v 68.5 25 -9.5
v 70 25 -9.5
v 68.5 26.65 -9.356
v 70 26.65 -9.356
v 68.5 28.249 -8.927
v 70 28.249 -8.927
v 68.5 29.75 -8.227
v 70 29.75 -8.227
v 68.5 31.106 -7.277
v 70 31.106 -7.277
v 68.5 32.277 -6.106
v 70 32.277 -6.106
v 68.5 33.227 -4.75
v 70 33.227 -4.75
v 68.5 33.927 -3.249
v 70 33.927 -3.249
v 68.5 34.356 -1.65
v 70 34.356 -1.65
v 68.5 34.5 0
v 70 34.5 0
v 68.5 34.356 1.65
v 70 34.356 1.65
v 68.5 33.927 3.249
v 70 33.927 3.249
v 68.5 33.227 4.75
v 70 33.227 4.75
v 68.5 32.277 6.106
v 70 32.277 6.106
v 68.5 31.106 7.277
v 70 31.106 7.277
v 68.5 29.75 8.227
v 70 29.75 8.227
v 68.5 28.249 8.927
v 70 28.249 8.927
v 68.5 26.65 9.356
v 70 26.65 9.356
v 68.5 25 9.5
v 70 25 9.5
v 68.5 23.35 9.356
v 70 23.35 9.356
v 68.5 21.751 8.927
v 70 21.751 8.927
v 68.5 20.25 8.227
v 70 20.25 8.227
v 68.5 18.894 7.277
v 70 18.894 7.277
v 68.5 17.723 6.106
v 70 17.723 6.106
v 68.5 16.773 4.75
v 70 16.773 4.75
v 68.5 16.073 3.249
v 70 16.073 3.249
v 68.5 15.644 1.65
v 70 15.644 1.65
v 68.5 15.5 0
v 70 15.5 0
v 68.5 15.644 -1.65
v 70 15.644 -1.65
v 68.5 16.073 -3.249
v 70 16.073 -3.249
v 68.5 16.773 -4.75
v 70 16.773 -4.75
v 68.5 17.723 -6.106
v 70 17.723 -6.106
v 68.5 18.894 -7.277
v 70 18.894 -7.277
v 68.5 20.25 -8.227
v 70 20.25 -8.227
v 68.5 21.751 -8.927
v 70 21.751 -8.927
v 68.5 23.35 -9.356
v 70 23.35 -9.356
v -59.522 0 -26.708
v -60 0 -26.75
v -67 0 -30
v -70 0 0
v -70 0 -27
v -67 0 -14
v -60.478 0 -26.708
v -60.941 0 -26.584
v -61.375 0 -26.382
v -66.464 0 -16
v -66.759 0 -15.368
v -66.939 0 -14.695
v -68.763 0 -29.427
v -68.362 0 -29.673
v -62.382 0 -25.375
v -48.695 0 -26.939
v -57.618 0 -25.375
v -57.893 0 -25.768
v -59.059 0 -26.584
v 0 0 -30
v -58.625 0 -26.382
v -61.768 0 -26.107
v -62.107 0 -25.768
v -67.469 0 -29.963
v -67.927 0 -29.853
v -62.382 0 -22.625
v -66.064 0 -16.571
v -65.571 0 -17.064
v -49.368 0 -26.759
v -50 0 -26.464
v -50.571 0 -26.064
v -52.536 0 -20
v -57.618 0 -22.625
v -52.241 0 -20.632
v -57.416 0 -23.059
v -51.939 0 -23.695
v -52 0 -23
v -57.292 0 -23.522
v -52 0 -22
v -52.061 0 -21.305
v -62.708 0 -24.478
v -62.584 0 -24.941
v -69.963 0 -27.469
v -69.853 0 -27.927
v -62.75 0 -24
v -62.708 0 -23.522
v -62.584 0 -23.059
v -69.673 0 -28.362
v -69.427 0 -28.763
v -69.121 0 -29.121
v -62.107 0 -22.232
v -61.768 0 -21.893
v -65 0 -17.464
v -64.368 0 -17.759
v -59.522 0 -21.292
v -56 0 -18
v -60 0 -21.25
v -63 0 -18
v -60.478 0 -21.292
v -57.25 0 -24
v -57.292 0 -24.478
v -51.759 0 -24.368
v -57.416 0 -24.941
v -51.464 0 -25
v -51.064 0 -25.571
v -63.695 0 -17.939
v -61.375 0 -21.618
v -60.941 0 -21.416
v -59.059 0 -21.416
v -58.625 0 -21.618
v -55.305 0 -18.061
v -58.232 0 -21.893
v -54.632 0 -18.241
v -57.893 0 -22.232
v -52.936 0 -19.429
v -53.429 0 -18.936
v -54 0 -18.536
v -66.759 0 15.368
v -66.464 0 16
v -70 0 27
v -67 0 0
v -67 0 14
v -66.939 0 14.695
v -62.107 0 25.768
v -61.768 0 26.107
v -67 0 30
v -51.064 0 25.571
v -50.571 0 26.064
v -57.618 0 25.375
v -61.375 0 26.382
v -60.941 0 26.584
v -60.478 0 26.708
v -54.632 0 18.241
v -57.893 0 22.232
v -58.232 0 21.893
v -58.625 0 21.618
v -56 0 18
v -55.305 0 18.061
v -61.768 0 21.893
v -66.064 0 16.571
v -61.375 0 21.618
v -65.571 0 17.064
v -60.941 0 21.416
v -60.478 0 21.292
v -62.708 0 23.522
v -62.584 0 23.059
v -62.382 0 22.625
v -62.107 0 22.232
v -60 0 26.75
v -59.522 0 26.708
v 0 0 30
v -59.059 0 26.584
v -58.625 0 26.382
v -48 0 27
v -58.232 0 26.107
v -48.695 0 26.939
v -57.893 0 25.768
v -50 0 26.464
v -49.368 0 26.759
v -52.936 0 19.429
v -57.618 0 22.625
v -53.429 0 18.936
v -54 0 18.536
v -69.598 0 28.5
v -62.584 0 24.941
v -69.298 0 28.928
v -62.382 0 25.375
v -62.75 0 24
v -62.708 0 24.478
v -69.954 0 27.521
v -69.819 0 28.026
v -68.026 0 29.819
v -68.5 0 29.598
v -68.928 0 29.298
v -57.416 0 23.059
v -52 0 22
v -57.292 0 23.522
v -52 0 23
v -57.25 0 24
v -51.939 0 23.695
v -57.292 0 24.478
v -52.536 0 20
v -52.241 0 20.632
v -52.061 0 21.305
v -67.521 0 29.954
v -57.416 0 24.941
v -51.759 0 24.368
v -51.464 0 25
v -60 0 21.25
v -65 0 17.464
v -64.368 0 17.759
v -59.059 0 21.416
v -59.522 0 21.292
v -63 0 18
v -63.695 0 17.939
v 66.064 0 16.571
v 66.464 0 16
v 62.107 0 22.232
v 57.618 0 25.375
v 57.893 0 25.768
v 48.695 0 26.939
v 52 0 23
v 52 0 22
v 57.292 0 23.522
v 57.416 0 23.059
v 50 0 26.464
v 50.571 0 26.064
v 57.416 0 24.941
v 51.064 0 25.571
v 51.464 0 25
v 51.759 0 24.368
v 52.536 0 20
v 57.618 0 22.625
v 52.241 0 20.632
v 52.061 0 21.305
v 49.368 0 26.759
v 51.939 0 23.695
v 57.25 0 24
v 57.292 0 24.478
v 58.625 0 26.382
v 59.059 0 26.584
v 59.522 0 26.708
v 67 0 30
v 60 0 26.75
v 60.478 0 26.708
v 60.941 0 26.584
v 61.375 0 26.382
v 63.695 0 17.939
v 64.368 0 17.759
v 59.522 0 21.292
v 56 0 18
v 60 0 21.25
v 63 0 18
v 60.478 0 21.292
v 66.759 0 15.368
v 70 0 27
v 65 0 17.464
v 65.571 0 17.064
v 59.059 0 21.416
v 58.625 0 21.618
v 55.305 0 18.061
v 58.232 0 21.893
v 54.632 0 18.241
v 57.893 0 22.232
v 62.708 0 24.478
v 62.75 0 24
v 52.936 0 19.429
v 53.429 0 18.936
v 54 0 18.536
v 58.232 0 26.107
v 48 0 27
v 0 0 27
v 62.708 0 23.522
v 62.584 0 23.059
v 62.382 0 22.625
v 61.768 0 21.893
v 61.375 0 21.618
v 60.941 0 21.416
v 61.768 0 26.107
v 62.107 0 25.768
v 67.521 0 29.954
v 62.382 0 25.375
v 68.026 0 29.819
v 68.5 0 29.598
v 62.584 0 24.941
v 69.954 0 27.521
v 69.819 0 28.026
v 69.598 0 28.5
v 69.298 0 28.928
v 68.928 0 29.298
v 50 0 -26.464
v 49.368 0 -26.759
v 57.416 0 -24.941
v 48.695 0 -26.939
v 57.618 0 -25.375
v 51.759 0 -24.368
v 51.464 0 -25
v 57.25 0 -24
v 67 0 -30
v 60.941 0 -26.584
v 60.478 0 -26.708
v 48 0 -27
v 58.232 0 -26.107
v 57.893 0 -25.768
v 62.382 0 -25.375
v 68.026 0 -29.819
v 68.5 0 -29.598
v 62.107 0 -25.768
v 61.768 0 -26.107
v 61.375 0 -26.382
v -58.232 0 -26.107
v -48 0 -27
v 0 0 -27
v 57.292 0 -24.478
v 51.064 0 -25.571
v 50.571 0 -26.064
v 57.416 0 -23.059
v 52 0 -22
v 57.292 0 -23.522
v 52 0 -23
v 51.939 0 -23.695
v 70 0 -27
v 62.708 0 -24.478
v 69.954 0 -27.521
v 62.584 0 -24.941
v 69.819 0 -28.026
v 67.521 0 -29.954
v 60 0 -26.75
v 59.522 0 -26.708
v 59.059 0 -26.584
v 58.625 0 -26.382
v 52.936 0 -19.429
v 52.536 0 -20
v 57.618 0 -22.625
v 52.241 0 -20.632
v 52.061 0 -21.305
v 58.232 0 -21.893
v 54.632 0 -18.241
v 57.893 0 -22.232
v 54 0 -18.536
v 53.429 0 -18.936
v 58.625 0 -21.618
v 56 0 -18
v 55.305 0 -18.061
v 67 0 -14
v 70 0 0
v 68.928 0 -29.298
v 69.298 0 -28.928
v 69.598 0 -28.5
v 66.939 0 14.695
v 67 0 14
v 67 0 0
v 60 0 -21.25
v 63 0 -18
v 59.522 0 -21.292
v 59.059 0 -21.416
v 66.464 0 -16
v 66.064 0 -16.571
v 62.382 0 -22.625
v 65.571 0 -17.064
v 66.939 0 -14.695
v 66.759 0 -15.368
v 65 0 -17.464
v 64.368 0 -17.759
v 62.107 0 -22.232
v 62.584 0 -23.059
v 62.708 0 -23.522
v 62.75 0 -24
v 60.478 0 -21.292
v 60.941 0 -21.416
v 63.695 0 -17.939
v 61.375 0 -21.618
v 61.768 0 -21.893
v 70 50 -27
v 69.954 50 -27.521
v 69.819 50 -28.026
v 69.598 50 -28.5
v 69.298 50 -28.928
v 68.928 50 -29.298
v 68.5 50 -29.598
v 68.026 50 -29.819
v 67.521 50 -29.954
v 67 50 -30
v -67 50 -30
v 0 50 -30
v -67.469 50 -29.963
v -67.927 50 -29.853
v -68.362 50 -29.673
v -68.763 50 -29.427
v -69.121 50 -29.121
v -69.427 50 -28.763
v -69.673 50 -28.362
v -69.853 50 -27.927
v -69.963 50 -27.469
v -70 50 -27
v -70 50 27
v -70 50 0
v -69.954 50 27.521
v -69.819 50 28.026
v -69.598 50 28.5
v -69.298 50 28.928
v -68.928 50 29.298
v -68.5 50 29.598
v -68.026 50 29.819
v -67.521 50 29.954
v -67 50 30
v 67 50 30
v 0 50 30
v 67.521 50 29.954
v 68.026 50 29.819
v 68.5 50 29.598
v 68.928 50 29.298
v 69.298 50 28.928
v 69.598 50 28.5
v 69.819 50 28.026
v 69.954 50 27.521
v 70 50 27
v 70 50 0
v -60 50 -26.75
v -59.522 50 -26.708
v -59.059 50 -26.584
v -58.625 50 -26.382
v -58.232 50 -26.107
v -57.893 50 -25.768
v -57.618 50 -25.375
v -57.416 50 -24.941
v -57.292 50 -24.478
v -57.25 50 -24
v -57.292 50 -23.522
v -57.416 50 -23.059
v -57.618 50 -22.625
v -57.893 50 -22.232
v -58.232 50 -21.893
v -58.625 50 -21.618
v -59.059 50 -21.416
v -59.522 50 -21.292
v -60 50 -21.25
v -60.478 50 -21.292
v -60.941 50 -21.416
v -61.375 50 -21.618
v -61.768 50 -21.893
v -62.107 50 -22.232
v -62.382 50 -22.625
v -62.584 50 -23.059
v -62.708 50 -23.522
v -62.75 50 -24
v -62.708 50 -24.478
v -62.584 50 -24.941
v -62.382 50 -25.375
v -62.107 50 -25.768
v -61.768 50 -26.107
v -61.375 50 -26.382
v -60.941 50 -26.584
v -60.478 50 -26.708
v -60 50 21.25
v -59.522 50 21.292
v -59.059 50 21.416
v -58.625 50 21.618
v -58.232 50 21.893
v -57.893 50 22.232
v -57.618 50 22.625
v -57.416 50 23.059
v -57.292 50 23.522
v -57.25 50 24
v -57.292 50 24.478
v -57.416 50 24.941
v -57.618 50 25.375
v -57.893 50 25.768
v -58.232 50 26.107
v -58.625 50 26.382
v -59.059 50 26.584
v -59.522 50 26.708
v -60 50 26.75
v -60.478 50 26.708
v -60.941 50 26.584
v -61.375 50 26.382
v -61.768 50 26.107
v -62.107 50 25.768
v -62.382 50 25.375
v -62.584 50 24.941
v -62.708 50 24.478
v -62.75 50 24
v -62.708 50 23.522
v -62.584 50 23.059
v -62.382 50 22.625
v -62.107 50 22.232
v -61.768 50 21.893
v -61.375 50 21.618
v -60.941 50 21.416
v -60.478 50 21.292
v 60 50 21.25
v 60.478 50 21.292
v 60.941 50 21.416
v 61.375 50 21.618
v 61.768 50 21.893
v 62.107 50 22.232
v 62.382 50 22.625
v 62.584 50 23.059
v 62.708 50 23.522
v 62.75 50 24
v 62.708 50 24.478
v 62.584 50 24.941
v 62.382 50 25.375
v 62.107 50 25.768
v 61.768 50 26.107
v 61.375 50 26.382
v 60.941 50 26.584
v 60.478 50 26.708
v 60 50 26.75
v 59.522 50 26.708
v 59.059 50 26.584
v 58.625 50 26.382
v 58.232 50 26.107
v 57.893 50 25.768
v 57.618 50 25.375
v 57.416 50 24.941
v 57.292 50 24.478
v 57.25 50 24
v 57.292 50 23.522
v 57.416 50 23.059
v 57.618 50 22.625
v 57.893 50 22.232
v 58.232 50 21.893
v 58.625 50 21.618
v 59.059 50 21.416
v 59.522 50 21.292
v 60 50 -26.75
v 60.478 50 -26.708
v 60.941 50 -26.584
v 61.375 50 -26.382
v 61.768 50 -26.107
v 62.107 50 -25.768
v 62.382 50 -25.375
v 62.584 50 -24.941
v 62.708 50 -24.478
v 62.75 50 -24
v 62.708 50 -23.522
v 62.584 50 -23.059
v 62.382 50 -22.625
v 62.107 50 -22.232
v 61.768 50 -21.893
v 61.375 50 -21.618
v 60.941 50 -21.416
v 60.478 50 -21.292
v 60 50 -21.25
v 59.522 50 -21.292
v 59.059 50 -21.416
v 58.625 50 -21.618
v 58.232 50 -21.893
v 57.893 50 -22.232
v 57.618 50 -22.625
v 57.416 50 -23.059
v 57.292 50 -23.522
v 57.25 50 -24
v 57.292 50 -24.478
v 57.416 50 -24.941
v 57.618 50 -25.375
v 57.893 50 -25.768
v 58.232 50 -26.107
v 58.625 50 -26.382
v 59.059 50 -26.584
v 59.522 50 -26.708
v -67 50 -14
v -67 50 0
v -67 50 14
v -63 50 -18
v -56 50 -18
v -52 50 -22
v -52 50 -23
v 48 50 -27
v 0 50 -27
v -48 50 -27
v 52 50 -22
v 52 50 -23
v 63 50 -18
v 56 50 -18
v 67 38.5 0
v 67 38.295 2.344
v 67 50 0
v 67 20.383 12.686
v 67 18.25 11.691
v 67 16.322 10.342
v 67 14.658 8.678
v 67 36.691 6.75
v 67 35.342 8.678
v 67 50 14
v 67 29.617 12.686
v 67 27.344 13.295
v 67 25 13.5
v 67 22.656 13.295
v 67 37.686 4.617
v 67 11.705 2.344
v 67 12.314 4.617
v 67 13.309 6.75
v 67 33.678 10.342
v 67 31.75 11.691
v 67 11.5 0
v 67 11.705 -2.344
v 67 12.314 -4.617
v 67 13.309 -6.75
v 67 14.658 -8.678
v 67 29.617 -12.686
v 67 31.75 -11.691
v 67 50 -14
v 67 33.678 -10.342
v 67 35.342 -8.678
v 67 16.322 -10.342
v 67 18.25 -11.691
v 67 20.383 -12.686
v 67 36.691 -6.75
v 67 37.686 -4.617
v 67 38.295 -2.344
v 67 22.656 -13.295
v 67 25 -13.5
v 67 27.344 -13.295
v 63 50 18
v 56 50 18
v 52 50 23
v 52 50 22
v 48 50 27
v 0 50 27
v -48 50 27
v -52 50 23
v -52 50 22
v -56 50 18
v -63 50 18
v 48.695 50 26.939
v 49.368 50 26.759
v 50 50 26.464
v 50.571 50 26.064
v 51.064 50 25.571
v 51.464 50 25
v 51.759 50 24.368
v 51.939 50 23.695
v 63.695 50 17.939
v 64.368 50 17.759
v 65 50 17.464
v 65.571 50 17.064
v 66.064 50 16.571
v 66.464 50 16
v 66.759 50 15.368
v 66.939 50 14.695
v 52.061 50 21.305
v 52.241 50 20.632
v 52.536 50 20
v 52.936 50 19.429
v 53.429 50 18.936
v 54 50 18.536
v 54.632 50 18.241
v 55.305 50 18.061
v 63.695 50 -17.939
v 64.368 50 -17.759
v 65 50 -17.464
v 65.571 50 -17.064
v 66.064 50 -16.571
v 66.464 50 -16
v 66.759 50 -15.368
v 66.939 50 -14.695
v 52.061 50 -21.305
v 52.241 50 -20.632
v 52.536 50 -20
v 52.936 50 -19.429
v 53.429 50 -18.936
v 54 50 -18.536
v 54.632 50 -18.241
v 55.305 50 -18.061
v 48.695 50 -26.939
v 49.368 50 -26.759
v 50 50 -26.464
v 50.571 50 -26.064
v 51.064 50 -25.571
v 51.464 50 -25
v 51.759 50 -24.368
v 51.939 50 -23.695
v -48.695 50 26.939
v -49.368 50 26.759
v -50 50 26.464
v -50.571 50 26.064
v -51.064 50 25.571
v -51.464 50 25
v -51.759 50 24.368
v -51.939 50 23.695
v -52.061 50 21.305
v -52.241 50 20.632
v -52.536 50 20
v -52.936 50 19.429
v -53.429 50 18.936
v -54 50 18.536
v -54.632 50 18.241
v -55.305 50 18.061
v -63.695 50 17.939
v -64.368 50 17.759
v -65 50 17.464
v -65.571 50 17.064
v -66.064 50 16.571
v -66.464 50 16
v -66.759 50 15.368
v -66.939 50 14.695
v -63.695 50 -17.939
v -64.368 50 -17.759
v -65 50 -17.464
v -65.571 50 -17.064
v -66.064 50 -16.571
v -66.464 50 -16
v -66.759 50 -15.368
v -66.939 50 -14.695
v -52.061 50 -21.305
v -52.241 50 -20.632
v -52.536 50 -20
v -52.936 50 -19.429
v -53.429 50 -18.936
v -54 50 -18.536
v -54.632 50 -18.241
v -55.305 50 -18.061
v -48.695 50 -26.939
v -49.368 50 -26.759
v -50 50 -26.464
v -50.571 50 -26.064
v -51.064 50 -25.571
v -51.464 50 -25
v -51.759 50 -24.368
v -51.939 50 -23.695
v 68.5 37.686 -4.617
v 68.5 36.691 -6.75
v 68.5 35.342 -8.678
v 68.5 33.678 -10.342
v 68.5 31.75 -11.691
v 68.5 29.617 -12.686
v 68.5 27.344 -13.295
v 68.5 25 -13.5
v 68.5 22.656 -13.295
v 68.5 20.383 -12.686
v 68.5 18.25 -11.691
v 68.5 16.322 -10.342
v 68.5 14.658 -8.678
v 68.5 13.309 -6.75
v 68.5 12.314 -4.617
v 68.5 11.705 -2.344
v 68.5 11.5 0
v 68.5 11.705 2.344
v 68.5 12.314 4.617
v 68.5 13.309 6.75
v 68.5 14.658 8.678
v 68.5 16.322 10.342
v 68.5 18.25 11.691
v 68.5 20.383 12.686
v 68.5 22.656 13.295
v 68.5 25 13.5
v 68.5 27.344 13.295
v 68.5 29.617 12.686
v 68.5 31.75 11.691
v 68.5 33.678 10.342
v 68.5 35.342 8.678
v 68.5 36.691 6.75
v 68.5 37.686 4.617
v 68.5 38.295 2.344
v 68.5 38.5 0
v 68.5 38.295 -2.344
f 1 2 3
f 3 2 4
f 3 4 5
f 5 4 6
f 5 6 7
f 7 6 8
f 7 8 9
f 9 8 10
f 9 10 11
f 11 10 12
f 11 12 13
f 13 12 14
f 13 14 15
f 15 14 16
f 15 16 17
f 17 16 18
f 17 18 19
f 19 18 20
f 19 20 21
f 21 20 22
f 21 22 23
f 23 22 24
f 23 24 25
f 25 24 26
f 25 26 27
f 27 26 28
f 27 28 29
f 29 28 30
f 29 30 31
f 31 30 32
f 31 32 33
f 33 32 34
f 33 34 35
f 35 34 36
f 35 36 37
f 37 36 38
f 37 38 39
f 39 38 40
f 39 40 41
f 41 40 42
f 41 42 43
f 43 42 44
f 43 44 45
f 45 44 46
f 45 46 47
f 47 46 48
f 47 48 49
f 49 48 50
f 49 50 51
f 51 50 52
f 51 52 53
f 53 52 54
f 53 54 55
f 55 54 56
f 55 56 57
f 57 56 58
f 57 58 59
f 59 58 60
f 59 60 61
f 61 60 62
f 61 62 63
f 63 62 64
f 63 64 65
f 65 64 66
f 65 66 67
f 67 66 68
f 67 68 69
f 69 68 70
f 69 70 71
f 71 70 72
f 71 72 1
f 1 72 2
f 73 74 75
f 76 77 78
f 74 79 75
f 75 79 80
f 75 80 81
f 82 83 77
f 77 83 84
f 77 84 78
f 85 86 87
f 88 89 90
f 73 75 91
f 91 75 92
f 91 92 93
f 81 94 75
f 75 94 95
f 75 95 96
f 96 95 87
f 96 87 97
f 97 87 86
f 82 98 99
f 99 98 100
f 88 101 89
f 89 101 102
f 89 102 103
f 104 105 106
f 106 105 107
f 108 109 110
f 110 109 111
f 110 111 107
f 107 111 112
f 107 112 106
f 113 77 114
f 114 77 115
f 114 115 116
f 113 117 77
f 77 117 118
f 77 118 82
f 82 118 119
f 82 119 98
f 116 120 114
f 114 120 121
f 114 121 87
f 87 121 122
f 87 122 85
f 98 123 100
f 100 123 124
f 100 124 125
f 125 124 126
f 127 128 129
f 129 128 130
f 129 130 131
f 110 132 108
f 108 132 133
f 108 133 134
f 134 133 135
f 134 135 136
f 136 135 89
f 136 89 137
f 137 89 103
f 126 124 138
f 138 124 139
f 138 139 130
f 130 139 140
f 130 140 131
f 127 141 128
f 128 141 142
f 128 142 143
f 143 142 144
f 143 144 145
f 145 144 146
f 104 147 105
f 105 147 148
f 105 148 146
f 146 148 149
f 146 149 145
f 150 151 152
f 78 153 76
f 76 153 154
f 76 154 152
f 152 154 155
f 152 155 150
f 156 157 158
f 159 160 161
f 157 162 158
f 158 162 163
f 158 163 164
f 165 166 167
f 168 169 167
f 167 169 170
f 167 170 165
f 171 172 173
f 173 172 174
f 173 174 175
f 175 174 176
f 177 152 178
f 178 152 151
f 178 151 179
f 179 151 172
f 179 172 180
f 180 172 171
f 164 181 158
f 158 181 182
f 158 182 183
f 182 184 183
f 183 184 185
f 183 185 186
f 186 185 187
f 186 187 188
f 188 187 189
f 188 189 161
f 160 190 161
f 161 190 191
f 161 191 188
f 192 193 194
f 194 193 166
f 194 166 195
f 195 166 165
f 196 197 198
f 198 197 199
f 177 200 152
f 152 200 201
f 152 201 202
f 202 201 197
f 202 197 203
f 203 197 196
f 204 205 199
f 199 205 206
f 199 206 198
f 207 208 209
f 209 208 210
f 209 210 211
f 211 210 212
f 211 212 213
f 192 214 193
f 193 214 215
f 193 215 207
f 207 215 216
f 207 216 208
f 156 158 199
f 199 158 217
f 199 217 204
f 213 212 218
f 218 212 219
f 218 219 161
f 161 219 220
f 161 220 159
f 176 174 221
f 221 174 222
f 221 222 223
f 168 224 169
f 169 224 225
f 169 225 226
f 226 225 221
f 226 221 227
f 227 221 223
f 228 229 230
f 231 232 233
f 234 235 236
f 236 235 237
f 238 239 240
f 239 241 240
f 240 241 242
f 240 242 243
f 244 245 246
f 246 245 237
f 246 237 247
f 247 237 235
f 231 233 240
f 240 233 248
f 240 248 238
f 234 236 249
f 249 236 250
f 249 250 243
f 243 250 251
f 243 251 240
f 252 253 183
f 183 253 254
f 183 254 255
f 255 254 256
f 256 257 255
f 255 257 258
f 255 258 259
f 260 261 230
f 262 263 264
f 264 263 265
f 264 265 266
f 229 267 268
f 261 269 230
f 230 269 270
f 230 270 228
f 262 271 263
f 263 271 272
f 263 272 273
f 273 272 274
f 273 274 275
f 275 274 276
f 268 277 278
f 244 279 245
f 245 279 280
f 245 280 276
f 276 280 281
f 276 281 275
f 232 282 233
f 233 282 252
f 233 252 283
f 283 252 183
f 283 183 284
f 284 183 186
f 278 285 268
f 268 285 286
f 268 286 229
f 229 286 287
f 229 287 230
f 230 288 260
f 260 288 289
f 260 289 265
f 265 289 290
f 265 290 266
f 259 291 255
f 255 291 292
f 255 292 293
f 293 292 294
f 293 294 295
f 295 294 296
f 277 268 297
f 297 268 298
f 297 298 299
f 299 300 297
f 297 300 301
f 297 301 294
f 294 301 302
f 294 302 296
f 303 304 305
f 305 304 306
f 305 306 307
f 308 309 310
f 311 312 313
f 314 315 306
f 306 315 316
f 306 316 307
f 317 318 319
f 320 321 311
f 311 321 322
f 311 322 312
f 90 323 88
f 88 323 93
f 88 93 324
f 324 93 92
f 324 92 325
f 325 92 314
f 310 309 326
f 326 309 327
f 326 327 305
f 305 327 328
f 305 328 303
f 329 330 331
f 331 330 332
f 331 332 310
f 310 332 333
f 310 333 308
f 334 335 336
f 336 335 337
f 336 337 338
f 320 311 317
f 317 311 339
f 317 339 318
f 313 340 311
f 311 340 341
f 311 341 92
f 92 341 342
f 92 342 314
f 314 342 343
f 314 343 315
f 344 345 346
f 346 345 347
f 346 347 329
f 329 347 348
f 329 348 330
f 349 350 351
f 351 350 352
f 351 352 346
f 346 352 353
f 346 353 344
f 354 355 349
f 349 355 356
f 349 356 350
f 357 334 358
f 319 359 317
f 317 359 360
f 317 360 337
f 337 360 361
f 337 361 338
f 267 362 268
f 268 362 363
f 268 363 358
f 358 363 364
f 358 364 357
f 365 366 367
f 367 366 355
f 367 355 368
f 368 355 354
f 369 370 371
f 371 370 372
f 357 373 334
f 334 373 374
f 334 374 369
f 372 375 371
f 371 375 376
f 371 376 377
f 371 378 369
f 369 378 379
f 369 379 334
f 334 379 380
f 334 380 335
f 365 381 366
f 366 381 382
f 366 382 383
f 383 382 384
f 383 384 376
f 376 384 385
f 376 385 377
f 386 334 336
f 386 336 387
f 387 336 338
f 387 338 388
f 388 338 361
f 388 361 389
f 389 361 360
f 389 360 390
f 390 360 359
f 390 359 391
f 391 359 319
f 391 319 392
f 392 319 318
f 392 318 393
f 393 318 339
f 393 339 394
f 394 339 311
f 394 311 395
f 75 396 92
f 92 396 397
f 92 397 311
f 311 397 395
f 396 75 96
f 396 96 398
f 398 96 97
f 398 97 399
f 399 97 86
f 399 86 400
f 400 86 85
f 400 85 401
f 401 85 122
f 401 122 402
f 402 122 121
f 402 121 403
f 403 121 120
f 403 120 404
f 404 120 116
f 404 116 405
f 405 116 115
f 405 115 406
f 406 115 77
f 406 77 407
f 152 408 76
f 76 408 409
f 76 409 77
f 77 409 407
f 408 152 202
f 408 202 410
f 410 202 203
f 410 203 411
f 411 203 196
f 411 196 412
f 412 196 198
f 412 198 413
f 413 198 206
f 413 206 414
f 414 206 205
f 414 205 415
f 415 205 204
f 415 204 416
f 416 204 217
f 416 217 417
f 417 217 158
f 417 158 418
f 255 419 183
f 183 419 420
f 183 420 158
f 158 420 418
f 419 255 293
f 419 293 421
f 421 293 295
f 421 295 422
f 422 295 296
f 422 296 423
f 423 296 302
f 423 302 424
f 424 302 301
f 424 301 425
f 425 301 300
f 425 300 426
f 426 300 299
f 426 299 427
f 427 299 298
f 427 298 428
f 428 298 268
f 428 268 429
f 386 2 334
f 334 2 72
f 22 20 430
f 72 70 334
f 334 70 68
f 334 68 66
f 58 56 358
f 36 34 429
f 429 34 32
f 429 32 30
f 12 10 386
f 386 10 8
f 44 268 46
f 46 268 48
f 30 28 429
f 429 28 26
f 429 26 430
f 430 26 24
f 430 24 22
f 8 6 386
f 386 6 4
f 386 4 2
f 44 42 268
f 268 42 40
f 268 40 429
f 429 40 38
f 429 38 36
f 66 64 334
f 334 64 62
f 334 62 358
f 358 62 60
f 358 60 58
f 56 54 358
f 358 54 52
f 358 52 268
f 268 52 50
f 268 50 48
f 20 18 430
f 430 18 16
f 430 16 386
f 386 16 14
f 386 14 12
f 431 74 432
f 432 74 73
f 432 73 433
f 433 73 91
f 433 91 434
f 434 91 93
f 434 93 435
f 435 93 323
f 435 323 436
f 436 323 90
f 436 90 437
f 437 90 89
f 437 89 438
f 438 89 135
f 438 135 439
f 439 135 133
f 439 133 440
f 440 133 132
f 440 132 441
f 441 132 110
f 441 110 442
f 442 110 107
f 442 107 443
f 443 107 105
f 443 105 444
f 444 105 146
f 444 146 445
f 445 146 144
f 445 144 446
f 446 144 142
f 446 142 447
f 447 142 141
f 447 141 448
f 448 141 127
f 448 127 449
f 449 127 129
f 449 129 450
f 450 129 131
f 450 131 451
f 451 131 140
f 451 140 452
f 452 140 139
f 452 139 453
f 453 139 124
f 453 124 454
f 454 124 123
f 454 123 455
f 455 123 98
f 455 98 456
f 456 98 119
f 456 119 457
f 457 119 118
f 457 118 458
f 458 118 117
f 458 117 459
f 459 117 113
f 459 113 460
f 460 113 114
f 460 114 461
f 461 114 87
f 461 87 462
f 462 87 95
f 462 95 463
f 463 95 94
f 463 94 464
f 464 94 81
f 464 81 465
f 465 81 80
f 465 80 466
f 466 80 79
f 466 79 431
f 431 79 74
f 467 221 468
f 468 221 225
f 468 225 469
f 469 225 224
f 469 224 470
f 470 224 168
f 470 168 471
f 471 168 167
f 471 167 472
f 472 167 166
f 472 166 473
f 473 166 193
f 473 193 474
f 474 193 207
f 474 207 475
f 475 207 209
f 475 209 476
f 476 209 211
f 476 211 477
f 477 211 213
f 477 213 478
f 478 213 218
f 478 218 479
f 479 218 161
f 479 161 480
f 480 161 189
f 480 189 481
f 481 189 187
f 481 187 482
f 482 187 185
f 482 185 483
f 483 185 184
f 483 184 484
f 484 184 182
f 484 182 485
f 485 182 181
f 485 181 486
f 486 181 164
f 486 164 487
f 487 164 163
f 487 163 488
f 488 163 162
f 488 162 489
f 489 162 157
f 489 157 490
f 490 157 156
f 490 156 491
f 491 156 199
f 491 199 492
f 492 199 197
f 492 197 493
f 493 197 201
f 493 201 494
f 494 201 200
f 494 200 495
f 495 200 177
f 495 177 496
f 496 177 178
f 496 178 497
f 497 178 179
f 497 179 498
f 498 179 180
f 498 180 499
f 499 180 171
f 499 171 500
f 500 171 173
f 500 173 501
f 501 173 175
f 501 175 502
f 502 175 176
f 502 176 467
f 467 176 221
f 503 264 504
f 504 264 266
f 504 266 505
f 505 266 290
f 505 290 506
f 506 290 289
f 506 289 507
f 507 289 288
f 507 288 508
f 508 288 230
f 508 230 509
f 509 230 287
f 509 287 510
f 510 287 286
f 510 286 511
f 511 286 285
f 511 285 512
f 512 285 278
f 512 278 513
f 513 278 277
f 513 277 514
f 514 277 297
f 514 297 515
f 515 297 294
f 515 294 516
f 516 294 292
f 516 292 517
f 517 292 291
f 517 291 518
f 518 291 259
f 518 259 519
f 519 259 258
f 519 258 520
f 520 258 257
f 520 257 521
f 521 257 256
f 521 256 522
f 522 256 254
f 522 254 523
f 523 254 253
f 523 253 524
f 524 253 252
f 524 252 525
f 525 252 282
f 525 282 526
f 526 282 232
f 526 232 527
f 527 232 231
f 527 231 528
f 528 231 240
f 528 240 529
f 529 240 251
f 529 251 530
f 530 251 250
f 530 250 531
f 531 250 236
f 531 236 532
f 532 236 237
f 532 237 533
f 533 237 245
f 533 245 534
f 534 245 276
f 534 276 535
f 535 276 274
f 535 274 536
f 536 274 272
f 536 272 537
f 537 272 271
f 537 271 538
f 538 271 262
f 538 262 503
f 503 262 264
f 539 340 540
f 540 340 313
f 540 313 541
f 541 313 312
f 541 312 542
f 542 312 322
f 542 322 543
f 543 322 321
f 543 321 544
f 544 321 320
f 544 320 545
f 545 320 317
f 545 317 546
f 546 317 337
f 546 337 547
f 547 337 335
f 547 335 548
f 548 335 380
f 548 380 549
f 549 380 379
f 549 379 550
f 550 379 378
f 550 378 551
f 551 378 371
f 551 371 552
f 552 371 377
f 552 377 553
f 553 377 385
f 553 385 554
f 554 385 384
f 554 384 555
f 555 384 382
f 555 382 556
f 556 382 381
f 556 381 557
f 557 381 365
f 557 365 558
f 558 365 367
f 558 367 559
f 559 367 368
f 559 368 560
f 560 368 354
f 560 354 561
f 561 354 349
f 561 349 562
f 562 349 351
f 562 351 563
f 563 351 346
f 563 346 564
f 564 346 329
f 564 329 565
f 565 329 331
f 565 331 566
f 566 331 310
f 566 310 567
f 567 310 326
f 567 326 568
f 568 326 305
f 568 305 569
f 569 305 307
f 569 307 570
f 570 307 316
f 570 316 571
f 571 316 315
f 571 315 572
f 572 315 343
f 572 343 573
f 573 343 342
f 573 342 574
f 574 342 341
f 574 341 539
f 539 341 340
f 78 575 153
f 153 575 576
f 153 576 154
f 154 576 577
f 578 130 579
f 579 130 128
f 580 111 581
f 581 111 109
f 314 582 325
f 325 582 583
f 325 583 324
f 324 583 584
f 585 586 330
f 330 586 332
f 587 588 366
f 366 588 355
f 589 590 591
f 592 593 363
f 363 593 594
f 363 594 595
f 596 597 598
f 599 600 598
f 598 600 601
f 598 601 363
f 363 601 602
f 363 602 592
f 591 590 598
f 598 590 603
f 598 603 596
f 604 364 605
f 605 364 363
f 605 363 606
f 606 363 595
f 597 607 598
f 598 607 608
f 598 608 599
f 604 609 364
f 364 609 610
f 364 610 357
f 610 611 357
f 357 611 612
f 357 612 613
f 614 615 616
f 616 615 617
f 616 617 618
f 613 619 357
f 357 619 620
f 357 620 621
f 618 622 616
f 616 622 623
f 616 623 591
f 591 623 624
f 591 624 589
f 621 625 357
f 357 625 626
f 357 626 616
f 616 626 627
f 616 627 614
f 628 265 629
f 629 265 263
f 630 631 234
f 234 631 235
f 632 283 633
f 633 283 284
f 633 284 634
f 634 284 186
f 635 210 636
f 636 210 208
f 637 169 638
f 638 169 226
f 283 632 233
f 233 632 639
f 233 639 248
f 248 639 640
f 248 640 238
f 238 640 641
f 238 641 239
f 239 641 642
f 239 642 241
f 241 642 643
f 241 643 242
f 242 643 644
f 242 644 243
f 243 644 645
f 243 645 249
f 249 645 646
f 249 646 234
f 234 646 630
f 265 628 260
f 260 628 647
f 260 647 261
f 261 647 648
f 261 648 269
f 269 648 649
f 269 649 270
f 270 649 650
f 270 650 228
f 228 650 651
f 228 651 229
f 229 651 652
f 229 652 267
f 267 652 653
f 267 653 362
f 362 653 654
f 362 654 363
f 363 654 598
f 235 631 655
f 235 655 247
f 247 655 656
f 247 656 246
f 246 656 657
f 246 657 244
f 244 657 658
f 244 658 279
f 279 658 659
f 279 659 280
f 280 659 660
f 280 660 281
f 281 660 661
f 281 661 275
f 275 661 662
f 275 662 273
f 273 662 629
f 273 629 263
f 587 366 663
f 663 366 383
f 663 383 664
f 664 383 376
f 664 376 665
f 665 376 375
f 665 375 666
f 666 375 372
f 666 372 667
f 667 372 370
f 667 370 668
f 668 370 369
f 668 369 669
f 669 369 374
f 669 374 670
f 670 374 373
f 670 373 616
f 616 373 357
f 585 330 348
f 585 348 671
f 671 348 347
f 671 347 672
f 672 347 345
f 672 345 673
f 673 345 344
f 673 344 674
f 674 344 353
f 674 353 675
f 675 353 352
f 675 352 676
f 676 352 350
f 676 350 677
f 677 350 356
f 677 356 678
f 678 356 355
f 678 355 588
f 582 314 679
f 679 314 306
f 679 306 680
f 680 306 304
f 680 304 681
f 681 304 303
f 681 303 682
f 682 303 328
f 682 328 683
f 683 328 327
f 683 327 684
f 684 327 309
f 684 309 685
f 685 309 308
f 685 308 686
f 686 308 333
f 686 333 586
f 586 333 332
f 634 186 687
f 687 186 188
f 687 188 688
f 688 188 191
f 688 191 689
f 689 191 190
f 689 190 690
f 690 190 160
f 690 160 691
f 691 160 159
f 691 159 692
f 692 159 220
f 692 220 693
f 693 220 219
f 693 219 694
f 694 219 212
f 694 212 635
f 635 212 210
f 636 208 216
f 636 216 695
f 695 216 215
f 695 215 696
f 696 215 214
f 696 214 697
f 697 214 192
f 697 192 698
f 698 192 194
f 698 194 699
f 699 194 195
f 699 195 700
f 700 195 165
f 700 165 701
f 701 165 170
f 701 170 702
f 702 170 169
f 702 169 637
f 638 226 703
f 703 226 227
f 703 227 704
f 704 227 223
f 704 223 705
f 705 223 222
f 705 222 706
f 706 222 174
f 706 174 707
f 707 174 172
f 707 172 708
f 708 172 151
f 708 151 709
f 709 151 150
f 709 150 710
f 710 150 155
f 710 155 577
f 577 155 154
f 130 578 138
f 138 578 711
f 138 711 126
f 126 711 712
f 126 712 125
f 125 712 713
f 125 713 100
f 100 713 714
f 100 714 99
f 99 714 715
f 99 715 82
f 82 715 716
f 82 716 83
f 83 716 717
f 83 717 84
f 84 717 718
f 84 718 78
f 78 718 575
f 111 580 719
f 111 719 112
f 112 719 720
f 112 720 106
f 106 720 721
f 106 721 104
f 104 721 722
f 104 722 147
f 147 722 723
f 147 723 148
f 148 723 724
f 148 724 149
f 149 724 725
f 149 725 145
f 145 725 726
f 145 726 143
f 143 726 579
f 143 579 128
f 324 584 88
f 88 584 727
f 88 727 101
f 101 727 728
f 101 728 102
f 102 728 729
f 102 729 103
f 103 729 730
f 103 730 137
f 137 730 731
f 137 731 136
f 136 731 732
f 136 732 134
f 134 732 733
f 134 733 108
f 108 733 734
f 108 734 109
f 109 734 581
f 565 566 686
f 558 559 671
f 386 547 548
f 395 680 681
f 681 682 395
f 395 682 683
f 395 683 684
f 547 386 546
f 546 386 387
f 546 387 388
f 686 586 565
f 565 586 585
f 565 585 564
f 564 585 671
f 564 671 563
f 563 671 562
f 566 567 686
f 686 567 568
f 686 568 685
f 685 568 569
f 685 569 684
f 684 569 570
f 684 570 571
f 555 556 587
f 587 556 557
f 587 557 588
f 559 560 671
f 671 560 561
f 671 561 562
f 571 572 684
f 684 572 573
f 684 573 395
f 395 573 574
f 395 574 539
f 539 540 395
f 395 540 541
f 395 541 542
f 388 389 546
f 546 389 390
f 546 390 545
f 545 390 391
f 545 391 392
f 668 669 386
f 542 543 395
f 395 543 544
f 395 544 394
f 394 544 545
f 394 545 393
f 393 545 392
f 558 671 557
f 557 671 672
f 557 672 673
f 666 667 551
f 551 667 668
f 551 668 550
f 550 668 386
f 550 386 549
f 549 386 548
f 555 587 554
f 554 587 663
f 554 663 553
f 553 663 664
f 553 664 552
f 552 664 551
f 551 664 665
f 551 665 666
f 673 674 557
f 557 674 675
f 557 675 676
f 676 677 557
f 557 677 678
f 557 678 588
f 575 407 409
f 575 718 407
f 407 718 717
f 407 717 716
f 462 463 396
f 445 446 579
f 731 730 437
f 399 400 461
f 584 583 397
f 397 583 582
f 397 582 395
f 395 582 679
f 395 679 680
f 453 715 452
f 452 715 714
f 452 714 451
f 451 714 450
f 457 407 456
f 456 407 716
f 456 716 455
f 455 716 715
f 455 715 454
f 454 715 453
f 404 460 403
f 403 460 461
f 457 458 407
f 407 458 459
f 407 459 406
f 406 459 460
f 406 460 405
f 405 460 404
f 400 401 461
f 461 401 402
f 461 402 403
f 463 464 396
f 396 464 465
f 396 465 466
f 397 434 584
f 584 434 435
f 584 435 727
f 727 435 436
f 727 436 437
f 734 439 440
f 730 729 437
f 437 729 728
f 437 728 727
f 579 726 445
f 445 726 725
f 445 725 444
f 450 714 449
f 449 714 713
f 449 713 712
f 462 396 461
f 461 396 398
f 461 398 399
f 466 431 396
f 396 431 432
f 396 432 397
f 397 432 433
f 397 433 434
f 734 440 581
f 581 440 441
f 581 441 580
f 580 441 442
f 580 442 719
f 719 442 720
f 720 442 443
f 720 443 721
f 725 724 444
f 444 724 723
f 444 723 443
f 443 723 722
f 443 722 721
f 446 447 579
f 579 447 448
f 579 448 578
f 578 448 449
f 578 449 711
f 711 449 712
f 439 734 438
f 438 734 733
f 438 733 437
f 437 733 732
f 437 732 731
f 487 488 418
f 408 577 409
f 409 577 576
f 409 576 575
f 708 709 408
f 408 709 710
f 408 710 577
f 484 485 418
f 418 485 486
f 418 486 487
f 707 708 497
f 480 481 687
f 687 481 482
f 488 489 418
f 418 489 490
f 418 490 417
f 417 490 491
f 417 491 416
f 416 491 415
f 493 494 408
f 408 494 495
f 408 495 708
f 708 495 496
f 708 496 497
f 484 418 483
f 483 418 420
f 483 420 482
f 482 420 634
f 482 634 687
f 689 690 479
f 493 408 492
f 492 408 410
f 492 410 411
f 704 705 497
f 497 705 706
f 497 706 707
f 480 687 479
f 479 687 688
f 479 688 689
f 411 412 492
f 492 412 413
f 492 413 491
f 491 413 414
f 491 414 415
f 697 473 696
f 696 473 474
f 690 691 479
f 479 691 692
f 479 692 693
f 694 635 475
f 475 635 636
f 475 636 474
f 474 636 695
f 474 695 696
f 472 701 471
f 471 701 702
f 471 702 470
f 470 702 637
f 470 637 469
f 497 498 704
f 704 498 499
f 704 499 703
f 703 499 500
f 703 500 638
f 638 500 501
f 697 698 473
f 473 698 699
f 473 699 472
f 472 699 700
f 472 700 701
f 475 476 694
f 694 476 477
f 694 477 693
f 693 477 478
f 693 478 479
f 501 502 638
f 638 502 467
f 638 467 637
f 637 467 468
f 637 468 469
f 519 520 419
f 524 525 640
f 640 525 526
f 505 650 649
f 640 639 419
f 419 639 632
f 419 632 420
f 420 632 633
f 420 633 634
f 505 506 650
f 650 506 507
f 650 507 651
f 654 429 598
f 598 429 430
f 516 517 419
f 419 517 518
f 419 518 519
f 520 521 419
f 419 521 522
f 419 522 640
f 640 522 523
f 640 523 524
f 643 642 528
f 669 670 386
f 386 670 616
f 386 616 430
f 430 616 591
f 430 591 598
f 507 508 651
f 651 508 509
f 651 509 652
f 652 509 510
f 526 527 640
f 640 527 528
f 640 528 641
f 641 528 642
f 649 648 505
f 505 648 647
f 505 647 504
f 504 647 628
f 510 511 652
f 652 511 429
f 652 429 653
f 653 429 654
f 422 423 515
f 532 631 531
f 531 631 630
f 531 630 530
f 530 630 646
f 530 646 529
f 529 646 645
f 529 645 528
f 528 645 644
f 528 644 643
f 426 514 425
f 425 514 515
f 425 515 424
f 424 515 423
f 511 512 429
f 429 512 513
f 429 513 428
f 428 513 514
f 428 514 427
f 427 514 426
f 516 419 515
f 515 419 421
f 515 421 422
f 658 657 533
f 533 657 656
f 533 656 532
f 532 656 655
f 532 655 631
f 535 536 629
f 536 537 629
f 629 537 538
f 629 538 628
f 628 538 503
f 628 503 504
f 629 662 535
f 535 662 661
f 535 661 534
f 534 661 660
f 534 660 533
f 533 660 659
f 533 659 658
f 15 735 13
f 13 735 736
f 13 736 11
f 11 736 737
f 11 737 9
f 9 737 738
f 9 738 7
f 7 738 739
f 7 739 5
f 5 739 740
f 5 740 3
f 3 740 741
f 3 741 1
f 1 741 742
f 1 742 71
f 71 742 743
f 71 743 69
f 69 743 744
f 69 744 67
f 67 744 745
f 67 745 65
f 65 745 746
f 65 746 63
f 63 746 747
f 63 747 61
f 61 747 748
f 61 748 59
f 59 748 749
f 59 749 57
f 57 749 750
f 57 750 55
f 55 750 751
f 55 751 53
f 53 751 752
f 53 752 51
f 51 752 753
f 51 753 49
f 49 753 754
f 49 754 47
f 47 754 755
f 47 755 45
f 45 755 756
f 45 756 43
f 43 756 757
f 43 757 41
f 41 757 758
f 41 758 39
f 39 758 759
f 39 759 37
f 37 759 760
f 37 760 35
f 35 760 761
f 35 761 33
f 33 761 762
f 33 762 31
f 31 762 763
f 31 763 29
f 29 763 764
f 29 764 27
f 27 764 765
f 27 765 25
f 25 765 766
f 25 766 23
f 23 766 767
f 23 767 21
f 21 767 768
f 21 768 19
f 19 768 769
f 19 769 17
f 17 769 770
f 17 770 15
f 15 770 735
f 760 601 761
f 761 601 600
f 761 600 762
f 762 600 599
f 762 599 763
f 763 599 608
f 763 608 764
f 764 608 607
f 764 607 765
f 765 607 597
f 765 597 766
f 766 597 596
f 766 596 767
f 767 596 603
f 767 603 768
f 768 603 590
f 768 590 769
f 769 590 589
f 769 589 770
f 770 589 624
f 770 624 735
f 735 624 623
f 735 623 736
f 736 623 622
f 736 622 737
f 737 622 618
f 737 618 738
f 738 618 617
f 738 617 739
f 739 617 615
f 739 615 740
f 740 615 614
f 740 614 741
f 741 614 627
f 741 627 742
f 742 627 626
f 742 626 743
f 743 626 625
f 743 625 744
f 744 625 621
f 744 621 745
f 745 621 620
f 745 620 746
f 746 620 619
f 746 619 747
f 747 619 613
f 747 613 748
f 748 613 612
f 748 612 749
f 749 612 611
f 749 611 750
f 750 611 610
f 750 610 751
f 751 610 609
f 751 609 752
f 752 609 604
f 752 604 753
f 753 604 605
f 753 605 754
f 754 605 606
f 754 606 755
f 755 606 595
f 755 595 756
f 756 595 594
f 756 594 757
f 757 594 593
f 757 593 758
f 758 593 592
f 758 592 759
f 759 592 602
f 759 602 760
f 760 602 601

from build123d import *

# Parameters (mm, degrees)
SKETCH1_R           = 2.75
SKETCH1_W           = 130
SKETCH1_H           = 38
BOSS_EXTRUDE1_DEPTH = 10
SKETCH1_2_W         = 130
SKETCH1_2_H         = 38
BOSS_EXTRUDE2_DEPTH = 10
SKETCH14_W          = 15
SKETCH14_H          = 36
SKETCH14_W_2        = 104
SKETCH14_H_2        = 9
CUT_EXTRUDE2_DEPTH  = 77.811457479
FILLET2_R           = 4
SKETCH15_R          = 2.75
BOSS_EXTRUDE3_DEPTH = 40
CUT_EXTRUDE3_REACH  = 153.658
SKETCH16_R          = 9.5
SKETCH17_R          = 13.5
CUT_EXTRUDE4_DEPTH  = 1.5


with BuildPart() as part:
    # Sketch1 → Boss-Extrude1 (new body)
    with BuildSketch(Plane(origin=(0, 0, 0), x_dir=(1, 0, 0), z_dir=(0, 1, 0))):
        with BuildLine():
            Line((67, 30), (-67, 30))
            ThreePointArc((-67, 30), (-69.121320344, 29.121320344), (-70, 27))
            Line((-70, 27), (-70, -27))
            ThreePointArc((-70, -27), (-69.121320344, -29.121320344), (-67, -30))
            Line((-67, -30), (67, -30))
            ThreePointArc((67, -30), (69.121320344, -29.121320344), (70, -27))
            Line((70, -27), (70, 27))
            ThreePointArc((70, 27), (69.121320344, 29.121320344), (67, 30))
        make_face()
        with Locations(Location((-60, 24, 0), (0, 0, 270))):
            Circle(SKETCH1_R, mode=Mode.SUBTRACT)
        with Locations(Location((-60, -24, 0), (0, 0, 270))):
            Circle(SKETCH1_R, mode=Mode.SUBTRACT)
        with Locations(Location((60, -24, 0), (0, 0, 270))):
            Circle(SKETCH1_R, mode=Mode.SUBTRACT)
        with Locations(Location((60, 24, 0), (0, 0, 270))):
            Circle(SKETCH1_R, mode=Mode.SUBTRACT)
        Rectangle(SKETCH1_W, SKETCH1_H, mode=Mode.SUBTRACT)
    extrude(amount=BOSS_EXTRUDE1_DEPTH)

    # Sketch1<2> → Boss-Extrude2 (add)
    with BuildSketch(Plane(origin=(0, 0, 0), x_dir=(1, 0, 0), z_dir=(0, 1, 0))):
        Rectangle(SKETCH1_2_W, SKETCH1_2_H)
    extrude(amount=BOSS_EXTRUDE2_DEPTH)

    # Sketch14 → Cut-Extrude2 (cut, through all)
    with BuildSketch(Plane(origin=(0, 10, 0), x_dir=(1, 0, 0), z_dir=(0, 1, 0))):
        with Locations((-59.5, 0)):
            Rectangle(SKETCH14_W, SKETCH14_H)
        Rectangle(SKETCH14_W_2, SKETCH14_H)
        with Locations((0, 22.5)):
            Rectangle(SKETCH14_W_2, SKETCH14_H_2)
        with Locations((59.5, 0)):
            Rectangle(SKETCH14_W, SKETCH14_H)
        with Locations((0, -22.5)):
            Rectangle(SKETCH14_W_2, SKETCH14_H_2)
    extrude(amount=-CUT_EXTRUDE2_DEPTH, mode=Mode.SUBTRACT)

    # Fillet2
    fillet2_edges = [part.edges().sort_by_distance(p)[0] for p in [
        (-67, 5, 18),
        (-67, 5, -18),
        (-52, 5, -18),
        (-52, 5, -27),
        (52, 5, -27),
        (52, 5, -18),
        (67, 5, -18),
        (67, 5, 18),
        (52, 5, 18),
        (52, 5, 27),
        (-52, 5, 27),
        (-52, 5, 18),
    ]]
    fillet(fillet2_edges, radius=FILLET2_R)

    # Sketch15 → Boss-Extrude3 (add)
    with BuildSketch(Plane(origin=(0, 10, 0), x_dir=(1, 0, 0), z_dir=(0, 1, 0))):
        with BuildLine():
            Line((67, 30), (-67, 30))
            ThreePointArc((-67, 30), (-69.121320344, 29.121320344), (-70, 27))
            Line((-70, 27), (-70, -27))
            ThreePointArc((-70, -27), (-69.121320344, -29.121320344), (-67, -30))
            Line((-67, -30), (67, -30))
            ThreePointArc((67, -30), (69.121320344, -29.121320344), (70, -27))
            Line((70, -27), (70, 27))
            ThreePointArc((70, 27), (69.121320344, 29.121320344), (67, 30))
        make_face()
        with Locations(Location((-60, 24, 0), (0, 0, 270))):
            Circle(SKETCH15_R, mode=Mode.SUBTRACT)
        with Locations(Location((-60, -24, 0), (0, 0, 270))):
            Circle(SKETCH15_R, mode=Mode.SUBTRACT)
        with Locations(Location((60, -24, 0), (0, 0, 270))):
            Circle(SKETCH15_R, mode=Mode.SUBTRACT)
        with Locations(Location((60, 24, 0), (0, 0, 270))):
            Circle(SKETCH15_R, mode=Mode.SUBTRACT)
        with BuildLine():
            Line((56, -18), (63, -18))
            ThreePointArc((63, -18), (65.828427125, -16.828427125), (67, -14))
            Line((67, -14), (67, 14))
            ThreePointArc((67, 14), (65.828427125, 16.828427125), (63, 18))
            Line((63, 18), (56, 18))
            ThreePointArc((56, 18), (53.171572875, 19.171572875), (52, 22))
            Line((52, 22), (52, 23))
            ThreePointArc((52, 23), (50.828427125, 25.828427125), (48, 27))
            Line((48, 27), (-48, 27))
            ThreePointArc((-48, 27), (-50.828427125, 25.828427125), (-52, 23))
            Line((-52, 23), (-52, 22))
            ThreePointArc((-52, 22), (-53.171572875, 19.171572875), (-56, 18))
            Line((-56, 18), (-63, 18))
            ThreePointArc((-63, 18), (-65.828427125, 16.828427125), (-67, 14))
            Line((-67, 14), (-67, -14))
            ThreePointArc((-67, -14), (-65.828427125, -16.828427125), (-63, -18))
            Line((-63, -18), (-56, -18))
            ThreePointArc((-56, -18), (-53.171572875, -19.171572875), (-52, -22))
            Line((-52, -22), (-52, -23))
            ThreePointArc((-52, -23), (-50.828427125, -25.828427125), (-48, -27))
            Line((-48, -27), (48, -27))
            ThreePointArc((48, -27), (50.828427125, -25.828427125), (52, -23))
            Line((52, -23), (52, -22))
            ThreePointArc((52, -22), (53.171572875, -19.171572875), (56, -18))
        make_face(mode=Mode.SUBTRACT)
    extrude(amount=BOSS_EXTRUDE3_DEPTH)

    # Sketch16 → Cut-Extrude3 (cut, up to next)
    with BuildSketch(Plane(origin=(70, 0, 0), x_dir=(0, 0, -1), z_dir=(1, 0, 0)), mode=Mode.PRIVATE) as cut_extrude3_sk1:
        with Locations((0, 25)):
            Circle(SKETCH16_R)
    cut_extrude3_tool1 = extrude(cut_extrude3_sk1.sketch, amount=-CUT_EXTRUDE3_REACH, mode=Mode.PRIVATE) & part.part
    add(cut_extrude3_tool1.solids().sort_by_distance((70, 25, 0))[0], mode=Mode.SUBTRACT)

    # Sketch17 → Cut-Extrude4 (cut)
    with BuildSketch(Plane.ZY.offset(-67)):
        with Locations((0, 25)):
            Circle(SKETCH17_R)
    extrude(amount=-CUT_EXTRUDE4_DEPTH, mode=Mode.SUBTRACT)


solid = part.part
